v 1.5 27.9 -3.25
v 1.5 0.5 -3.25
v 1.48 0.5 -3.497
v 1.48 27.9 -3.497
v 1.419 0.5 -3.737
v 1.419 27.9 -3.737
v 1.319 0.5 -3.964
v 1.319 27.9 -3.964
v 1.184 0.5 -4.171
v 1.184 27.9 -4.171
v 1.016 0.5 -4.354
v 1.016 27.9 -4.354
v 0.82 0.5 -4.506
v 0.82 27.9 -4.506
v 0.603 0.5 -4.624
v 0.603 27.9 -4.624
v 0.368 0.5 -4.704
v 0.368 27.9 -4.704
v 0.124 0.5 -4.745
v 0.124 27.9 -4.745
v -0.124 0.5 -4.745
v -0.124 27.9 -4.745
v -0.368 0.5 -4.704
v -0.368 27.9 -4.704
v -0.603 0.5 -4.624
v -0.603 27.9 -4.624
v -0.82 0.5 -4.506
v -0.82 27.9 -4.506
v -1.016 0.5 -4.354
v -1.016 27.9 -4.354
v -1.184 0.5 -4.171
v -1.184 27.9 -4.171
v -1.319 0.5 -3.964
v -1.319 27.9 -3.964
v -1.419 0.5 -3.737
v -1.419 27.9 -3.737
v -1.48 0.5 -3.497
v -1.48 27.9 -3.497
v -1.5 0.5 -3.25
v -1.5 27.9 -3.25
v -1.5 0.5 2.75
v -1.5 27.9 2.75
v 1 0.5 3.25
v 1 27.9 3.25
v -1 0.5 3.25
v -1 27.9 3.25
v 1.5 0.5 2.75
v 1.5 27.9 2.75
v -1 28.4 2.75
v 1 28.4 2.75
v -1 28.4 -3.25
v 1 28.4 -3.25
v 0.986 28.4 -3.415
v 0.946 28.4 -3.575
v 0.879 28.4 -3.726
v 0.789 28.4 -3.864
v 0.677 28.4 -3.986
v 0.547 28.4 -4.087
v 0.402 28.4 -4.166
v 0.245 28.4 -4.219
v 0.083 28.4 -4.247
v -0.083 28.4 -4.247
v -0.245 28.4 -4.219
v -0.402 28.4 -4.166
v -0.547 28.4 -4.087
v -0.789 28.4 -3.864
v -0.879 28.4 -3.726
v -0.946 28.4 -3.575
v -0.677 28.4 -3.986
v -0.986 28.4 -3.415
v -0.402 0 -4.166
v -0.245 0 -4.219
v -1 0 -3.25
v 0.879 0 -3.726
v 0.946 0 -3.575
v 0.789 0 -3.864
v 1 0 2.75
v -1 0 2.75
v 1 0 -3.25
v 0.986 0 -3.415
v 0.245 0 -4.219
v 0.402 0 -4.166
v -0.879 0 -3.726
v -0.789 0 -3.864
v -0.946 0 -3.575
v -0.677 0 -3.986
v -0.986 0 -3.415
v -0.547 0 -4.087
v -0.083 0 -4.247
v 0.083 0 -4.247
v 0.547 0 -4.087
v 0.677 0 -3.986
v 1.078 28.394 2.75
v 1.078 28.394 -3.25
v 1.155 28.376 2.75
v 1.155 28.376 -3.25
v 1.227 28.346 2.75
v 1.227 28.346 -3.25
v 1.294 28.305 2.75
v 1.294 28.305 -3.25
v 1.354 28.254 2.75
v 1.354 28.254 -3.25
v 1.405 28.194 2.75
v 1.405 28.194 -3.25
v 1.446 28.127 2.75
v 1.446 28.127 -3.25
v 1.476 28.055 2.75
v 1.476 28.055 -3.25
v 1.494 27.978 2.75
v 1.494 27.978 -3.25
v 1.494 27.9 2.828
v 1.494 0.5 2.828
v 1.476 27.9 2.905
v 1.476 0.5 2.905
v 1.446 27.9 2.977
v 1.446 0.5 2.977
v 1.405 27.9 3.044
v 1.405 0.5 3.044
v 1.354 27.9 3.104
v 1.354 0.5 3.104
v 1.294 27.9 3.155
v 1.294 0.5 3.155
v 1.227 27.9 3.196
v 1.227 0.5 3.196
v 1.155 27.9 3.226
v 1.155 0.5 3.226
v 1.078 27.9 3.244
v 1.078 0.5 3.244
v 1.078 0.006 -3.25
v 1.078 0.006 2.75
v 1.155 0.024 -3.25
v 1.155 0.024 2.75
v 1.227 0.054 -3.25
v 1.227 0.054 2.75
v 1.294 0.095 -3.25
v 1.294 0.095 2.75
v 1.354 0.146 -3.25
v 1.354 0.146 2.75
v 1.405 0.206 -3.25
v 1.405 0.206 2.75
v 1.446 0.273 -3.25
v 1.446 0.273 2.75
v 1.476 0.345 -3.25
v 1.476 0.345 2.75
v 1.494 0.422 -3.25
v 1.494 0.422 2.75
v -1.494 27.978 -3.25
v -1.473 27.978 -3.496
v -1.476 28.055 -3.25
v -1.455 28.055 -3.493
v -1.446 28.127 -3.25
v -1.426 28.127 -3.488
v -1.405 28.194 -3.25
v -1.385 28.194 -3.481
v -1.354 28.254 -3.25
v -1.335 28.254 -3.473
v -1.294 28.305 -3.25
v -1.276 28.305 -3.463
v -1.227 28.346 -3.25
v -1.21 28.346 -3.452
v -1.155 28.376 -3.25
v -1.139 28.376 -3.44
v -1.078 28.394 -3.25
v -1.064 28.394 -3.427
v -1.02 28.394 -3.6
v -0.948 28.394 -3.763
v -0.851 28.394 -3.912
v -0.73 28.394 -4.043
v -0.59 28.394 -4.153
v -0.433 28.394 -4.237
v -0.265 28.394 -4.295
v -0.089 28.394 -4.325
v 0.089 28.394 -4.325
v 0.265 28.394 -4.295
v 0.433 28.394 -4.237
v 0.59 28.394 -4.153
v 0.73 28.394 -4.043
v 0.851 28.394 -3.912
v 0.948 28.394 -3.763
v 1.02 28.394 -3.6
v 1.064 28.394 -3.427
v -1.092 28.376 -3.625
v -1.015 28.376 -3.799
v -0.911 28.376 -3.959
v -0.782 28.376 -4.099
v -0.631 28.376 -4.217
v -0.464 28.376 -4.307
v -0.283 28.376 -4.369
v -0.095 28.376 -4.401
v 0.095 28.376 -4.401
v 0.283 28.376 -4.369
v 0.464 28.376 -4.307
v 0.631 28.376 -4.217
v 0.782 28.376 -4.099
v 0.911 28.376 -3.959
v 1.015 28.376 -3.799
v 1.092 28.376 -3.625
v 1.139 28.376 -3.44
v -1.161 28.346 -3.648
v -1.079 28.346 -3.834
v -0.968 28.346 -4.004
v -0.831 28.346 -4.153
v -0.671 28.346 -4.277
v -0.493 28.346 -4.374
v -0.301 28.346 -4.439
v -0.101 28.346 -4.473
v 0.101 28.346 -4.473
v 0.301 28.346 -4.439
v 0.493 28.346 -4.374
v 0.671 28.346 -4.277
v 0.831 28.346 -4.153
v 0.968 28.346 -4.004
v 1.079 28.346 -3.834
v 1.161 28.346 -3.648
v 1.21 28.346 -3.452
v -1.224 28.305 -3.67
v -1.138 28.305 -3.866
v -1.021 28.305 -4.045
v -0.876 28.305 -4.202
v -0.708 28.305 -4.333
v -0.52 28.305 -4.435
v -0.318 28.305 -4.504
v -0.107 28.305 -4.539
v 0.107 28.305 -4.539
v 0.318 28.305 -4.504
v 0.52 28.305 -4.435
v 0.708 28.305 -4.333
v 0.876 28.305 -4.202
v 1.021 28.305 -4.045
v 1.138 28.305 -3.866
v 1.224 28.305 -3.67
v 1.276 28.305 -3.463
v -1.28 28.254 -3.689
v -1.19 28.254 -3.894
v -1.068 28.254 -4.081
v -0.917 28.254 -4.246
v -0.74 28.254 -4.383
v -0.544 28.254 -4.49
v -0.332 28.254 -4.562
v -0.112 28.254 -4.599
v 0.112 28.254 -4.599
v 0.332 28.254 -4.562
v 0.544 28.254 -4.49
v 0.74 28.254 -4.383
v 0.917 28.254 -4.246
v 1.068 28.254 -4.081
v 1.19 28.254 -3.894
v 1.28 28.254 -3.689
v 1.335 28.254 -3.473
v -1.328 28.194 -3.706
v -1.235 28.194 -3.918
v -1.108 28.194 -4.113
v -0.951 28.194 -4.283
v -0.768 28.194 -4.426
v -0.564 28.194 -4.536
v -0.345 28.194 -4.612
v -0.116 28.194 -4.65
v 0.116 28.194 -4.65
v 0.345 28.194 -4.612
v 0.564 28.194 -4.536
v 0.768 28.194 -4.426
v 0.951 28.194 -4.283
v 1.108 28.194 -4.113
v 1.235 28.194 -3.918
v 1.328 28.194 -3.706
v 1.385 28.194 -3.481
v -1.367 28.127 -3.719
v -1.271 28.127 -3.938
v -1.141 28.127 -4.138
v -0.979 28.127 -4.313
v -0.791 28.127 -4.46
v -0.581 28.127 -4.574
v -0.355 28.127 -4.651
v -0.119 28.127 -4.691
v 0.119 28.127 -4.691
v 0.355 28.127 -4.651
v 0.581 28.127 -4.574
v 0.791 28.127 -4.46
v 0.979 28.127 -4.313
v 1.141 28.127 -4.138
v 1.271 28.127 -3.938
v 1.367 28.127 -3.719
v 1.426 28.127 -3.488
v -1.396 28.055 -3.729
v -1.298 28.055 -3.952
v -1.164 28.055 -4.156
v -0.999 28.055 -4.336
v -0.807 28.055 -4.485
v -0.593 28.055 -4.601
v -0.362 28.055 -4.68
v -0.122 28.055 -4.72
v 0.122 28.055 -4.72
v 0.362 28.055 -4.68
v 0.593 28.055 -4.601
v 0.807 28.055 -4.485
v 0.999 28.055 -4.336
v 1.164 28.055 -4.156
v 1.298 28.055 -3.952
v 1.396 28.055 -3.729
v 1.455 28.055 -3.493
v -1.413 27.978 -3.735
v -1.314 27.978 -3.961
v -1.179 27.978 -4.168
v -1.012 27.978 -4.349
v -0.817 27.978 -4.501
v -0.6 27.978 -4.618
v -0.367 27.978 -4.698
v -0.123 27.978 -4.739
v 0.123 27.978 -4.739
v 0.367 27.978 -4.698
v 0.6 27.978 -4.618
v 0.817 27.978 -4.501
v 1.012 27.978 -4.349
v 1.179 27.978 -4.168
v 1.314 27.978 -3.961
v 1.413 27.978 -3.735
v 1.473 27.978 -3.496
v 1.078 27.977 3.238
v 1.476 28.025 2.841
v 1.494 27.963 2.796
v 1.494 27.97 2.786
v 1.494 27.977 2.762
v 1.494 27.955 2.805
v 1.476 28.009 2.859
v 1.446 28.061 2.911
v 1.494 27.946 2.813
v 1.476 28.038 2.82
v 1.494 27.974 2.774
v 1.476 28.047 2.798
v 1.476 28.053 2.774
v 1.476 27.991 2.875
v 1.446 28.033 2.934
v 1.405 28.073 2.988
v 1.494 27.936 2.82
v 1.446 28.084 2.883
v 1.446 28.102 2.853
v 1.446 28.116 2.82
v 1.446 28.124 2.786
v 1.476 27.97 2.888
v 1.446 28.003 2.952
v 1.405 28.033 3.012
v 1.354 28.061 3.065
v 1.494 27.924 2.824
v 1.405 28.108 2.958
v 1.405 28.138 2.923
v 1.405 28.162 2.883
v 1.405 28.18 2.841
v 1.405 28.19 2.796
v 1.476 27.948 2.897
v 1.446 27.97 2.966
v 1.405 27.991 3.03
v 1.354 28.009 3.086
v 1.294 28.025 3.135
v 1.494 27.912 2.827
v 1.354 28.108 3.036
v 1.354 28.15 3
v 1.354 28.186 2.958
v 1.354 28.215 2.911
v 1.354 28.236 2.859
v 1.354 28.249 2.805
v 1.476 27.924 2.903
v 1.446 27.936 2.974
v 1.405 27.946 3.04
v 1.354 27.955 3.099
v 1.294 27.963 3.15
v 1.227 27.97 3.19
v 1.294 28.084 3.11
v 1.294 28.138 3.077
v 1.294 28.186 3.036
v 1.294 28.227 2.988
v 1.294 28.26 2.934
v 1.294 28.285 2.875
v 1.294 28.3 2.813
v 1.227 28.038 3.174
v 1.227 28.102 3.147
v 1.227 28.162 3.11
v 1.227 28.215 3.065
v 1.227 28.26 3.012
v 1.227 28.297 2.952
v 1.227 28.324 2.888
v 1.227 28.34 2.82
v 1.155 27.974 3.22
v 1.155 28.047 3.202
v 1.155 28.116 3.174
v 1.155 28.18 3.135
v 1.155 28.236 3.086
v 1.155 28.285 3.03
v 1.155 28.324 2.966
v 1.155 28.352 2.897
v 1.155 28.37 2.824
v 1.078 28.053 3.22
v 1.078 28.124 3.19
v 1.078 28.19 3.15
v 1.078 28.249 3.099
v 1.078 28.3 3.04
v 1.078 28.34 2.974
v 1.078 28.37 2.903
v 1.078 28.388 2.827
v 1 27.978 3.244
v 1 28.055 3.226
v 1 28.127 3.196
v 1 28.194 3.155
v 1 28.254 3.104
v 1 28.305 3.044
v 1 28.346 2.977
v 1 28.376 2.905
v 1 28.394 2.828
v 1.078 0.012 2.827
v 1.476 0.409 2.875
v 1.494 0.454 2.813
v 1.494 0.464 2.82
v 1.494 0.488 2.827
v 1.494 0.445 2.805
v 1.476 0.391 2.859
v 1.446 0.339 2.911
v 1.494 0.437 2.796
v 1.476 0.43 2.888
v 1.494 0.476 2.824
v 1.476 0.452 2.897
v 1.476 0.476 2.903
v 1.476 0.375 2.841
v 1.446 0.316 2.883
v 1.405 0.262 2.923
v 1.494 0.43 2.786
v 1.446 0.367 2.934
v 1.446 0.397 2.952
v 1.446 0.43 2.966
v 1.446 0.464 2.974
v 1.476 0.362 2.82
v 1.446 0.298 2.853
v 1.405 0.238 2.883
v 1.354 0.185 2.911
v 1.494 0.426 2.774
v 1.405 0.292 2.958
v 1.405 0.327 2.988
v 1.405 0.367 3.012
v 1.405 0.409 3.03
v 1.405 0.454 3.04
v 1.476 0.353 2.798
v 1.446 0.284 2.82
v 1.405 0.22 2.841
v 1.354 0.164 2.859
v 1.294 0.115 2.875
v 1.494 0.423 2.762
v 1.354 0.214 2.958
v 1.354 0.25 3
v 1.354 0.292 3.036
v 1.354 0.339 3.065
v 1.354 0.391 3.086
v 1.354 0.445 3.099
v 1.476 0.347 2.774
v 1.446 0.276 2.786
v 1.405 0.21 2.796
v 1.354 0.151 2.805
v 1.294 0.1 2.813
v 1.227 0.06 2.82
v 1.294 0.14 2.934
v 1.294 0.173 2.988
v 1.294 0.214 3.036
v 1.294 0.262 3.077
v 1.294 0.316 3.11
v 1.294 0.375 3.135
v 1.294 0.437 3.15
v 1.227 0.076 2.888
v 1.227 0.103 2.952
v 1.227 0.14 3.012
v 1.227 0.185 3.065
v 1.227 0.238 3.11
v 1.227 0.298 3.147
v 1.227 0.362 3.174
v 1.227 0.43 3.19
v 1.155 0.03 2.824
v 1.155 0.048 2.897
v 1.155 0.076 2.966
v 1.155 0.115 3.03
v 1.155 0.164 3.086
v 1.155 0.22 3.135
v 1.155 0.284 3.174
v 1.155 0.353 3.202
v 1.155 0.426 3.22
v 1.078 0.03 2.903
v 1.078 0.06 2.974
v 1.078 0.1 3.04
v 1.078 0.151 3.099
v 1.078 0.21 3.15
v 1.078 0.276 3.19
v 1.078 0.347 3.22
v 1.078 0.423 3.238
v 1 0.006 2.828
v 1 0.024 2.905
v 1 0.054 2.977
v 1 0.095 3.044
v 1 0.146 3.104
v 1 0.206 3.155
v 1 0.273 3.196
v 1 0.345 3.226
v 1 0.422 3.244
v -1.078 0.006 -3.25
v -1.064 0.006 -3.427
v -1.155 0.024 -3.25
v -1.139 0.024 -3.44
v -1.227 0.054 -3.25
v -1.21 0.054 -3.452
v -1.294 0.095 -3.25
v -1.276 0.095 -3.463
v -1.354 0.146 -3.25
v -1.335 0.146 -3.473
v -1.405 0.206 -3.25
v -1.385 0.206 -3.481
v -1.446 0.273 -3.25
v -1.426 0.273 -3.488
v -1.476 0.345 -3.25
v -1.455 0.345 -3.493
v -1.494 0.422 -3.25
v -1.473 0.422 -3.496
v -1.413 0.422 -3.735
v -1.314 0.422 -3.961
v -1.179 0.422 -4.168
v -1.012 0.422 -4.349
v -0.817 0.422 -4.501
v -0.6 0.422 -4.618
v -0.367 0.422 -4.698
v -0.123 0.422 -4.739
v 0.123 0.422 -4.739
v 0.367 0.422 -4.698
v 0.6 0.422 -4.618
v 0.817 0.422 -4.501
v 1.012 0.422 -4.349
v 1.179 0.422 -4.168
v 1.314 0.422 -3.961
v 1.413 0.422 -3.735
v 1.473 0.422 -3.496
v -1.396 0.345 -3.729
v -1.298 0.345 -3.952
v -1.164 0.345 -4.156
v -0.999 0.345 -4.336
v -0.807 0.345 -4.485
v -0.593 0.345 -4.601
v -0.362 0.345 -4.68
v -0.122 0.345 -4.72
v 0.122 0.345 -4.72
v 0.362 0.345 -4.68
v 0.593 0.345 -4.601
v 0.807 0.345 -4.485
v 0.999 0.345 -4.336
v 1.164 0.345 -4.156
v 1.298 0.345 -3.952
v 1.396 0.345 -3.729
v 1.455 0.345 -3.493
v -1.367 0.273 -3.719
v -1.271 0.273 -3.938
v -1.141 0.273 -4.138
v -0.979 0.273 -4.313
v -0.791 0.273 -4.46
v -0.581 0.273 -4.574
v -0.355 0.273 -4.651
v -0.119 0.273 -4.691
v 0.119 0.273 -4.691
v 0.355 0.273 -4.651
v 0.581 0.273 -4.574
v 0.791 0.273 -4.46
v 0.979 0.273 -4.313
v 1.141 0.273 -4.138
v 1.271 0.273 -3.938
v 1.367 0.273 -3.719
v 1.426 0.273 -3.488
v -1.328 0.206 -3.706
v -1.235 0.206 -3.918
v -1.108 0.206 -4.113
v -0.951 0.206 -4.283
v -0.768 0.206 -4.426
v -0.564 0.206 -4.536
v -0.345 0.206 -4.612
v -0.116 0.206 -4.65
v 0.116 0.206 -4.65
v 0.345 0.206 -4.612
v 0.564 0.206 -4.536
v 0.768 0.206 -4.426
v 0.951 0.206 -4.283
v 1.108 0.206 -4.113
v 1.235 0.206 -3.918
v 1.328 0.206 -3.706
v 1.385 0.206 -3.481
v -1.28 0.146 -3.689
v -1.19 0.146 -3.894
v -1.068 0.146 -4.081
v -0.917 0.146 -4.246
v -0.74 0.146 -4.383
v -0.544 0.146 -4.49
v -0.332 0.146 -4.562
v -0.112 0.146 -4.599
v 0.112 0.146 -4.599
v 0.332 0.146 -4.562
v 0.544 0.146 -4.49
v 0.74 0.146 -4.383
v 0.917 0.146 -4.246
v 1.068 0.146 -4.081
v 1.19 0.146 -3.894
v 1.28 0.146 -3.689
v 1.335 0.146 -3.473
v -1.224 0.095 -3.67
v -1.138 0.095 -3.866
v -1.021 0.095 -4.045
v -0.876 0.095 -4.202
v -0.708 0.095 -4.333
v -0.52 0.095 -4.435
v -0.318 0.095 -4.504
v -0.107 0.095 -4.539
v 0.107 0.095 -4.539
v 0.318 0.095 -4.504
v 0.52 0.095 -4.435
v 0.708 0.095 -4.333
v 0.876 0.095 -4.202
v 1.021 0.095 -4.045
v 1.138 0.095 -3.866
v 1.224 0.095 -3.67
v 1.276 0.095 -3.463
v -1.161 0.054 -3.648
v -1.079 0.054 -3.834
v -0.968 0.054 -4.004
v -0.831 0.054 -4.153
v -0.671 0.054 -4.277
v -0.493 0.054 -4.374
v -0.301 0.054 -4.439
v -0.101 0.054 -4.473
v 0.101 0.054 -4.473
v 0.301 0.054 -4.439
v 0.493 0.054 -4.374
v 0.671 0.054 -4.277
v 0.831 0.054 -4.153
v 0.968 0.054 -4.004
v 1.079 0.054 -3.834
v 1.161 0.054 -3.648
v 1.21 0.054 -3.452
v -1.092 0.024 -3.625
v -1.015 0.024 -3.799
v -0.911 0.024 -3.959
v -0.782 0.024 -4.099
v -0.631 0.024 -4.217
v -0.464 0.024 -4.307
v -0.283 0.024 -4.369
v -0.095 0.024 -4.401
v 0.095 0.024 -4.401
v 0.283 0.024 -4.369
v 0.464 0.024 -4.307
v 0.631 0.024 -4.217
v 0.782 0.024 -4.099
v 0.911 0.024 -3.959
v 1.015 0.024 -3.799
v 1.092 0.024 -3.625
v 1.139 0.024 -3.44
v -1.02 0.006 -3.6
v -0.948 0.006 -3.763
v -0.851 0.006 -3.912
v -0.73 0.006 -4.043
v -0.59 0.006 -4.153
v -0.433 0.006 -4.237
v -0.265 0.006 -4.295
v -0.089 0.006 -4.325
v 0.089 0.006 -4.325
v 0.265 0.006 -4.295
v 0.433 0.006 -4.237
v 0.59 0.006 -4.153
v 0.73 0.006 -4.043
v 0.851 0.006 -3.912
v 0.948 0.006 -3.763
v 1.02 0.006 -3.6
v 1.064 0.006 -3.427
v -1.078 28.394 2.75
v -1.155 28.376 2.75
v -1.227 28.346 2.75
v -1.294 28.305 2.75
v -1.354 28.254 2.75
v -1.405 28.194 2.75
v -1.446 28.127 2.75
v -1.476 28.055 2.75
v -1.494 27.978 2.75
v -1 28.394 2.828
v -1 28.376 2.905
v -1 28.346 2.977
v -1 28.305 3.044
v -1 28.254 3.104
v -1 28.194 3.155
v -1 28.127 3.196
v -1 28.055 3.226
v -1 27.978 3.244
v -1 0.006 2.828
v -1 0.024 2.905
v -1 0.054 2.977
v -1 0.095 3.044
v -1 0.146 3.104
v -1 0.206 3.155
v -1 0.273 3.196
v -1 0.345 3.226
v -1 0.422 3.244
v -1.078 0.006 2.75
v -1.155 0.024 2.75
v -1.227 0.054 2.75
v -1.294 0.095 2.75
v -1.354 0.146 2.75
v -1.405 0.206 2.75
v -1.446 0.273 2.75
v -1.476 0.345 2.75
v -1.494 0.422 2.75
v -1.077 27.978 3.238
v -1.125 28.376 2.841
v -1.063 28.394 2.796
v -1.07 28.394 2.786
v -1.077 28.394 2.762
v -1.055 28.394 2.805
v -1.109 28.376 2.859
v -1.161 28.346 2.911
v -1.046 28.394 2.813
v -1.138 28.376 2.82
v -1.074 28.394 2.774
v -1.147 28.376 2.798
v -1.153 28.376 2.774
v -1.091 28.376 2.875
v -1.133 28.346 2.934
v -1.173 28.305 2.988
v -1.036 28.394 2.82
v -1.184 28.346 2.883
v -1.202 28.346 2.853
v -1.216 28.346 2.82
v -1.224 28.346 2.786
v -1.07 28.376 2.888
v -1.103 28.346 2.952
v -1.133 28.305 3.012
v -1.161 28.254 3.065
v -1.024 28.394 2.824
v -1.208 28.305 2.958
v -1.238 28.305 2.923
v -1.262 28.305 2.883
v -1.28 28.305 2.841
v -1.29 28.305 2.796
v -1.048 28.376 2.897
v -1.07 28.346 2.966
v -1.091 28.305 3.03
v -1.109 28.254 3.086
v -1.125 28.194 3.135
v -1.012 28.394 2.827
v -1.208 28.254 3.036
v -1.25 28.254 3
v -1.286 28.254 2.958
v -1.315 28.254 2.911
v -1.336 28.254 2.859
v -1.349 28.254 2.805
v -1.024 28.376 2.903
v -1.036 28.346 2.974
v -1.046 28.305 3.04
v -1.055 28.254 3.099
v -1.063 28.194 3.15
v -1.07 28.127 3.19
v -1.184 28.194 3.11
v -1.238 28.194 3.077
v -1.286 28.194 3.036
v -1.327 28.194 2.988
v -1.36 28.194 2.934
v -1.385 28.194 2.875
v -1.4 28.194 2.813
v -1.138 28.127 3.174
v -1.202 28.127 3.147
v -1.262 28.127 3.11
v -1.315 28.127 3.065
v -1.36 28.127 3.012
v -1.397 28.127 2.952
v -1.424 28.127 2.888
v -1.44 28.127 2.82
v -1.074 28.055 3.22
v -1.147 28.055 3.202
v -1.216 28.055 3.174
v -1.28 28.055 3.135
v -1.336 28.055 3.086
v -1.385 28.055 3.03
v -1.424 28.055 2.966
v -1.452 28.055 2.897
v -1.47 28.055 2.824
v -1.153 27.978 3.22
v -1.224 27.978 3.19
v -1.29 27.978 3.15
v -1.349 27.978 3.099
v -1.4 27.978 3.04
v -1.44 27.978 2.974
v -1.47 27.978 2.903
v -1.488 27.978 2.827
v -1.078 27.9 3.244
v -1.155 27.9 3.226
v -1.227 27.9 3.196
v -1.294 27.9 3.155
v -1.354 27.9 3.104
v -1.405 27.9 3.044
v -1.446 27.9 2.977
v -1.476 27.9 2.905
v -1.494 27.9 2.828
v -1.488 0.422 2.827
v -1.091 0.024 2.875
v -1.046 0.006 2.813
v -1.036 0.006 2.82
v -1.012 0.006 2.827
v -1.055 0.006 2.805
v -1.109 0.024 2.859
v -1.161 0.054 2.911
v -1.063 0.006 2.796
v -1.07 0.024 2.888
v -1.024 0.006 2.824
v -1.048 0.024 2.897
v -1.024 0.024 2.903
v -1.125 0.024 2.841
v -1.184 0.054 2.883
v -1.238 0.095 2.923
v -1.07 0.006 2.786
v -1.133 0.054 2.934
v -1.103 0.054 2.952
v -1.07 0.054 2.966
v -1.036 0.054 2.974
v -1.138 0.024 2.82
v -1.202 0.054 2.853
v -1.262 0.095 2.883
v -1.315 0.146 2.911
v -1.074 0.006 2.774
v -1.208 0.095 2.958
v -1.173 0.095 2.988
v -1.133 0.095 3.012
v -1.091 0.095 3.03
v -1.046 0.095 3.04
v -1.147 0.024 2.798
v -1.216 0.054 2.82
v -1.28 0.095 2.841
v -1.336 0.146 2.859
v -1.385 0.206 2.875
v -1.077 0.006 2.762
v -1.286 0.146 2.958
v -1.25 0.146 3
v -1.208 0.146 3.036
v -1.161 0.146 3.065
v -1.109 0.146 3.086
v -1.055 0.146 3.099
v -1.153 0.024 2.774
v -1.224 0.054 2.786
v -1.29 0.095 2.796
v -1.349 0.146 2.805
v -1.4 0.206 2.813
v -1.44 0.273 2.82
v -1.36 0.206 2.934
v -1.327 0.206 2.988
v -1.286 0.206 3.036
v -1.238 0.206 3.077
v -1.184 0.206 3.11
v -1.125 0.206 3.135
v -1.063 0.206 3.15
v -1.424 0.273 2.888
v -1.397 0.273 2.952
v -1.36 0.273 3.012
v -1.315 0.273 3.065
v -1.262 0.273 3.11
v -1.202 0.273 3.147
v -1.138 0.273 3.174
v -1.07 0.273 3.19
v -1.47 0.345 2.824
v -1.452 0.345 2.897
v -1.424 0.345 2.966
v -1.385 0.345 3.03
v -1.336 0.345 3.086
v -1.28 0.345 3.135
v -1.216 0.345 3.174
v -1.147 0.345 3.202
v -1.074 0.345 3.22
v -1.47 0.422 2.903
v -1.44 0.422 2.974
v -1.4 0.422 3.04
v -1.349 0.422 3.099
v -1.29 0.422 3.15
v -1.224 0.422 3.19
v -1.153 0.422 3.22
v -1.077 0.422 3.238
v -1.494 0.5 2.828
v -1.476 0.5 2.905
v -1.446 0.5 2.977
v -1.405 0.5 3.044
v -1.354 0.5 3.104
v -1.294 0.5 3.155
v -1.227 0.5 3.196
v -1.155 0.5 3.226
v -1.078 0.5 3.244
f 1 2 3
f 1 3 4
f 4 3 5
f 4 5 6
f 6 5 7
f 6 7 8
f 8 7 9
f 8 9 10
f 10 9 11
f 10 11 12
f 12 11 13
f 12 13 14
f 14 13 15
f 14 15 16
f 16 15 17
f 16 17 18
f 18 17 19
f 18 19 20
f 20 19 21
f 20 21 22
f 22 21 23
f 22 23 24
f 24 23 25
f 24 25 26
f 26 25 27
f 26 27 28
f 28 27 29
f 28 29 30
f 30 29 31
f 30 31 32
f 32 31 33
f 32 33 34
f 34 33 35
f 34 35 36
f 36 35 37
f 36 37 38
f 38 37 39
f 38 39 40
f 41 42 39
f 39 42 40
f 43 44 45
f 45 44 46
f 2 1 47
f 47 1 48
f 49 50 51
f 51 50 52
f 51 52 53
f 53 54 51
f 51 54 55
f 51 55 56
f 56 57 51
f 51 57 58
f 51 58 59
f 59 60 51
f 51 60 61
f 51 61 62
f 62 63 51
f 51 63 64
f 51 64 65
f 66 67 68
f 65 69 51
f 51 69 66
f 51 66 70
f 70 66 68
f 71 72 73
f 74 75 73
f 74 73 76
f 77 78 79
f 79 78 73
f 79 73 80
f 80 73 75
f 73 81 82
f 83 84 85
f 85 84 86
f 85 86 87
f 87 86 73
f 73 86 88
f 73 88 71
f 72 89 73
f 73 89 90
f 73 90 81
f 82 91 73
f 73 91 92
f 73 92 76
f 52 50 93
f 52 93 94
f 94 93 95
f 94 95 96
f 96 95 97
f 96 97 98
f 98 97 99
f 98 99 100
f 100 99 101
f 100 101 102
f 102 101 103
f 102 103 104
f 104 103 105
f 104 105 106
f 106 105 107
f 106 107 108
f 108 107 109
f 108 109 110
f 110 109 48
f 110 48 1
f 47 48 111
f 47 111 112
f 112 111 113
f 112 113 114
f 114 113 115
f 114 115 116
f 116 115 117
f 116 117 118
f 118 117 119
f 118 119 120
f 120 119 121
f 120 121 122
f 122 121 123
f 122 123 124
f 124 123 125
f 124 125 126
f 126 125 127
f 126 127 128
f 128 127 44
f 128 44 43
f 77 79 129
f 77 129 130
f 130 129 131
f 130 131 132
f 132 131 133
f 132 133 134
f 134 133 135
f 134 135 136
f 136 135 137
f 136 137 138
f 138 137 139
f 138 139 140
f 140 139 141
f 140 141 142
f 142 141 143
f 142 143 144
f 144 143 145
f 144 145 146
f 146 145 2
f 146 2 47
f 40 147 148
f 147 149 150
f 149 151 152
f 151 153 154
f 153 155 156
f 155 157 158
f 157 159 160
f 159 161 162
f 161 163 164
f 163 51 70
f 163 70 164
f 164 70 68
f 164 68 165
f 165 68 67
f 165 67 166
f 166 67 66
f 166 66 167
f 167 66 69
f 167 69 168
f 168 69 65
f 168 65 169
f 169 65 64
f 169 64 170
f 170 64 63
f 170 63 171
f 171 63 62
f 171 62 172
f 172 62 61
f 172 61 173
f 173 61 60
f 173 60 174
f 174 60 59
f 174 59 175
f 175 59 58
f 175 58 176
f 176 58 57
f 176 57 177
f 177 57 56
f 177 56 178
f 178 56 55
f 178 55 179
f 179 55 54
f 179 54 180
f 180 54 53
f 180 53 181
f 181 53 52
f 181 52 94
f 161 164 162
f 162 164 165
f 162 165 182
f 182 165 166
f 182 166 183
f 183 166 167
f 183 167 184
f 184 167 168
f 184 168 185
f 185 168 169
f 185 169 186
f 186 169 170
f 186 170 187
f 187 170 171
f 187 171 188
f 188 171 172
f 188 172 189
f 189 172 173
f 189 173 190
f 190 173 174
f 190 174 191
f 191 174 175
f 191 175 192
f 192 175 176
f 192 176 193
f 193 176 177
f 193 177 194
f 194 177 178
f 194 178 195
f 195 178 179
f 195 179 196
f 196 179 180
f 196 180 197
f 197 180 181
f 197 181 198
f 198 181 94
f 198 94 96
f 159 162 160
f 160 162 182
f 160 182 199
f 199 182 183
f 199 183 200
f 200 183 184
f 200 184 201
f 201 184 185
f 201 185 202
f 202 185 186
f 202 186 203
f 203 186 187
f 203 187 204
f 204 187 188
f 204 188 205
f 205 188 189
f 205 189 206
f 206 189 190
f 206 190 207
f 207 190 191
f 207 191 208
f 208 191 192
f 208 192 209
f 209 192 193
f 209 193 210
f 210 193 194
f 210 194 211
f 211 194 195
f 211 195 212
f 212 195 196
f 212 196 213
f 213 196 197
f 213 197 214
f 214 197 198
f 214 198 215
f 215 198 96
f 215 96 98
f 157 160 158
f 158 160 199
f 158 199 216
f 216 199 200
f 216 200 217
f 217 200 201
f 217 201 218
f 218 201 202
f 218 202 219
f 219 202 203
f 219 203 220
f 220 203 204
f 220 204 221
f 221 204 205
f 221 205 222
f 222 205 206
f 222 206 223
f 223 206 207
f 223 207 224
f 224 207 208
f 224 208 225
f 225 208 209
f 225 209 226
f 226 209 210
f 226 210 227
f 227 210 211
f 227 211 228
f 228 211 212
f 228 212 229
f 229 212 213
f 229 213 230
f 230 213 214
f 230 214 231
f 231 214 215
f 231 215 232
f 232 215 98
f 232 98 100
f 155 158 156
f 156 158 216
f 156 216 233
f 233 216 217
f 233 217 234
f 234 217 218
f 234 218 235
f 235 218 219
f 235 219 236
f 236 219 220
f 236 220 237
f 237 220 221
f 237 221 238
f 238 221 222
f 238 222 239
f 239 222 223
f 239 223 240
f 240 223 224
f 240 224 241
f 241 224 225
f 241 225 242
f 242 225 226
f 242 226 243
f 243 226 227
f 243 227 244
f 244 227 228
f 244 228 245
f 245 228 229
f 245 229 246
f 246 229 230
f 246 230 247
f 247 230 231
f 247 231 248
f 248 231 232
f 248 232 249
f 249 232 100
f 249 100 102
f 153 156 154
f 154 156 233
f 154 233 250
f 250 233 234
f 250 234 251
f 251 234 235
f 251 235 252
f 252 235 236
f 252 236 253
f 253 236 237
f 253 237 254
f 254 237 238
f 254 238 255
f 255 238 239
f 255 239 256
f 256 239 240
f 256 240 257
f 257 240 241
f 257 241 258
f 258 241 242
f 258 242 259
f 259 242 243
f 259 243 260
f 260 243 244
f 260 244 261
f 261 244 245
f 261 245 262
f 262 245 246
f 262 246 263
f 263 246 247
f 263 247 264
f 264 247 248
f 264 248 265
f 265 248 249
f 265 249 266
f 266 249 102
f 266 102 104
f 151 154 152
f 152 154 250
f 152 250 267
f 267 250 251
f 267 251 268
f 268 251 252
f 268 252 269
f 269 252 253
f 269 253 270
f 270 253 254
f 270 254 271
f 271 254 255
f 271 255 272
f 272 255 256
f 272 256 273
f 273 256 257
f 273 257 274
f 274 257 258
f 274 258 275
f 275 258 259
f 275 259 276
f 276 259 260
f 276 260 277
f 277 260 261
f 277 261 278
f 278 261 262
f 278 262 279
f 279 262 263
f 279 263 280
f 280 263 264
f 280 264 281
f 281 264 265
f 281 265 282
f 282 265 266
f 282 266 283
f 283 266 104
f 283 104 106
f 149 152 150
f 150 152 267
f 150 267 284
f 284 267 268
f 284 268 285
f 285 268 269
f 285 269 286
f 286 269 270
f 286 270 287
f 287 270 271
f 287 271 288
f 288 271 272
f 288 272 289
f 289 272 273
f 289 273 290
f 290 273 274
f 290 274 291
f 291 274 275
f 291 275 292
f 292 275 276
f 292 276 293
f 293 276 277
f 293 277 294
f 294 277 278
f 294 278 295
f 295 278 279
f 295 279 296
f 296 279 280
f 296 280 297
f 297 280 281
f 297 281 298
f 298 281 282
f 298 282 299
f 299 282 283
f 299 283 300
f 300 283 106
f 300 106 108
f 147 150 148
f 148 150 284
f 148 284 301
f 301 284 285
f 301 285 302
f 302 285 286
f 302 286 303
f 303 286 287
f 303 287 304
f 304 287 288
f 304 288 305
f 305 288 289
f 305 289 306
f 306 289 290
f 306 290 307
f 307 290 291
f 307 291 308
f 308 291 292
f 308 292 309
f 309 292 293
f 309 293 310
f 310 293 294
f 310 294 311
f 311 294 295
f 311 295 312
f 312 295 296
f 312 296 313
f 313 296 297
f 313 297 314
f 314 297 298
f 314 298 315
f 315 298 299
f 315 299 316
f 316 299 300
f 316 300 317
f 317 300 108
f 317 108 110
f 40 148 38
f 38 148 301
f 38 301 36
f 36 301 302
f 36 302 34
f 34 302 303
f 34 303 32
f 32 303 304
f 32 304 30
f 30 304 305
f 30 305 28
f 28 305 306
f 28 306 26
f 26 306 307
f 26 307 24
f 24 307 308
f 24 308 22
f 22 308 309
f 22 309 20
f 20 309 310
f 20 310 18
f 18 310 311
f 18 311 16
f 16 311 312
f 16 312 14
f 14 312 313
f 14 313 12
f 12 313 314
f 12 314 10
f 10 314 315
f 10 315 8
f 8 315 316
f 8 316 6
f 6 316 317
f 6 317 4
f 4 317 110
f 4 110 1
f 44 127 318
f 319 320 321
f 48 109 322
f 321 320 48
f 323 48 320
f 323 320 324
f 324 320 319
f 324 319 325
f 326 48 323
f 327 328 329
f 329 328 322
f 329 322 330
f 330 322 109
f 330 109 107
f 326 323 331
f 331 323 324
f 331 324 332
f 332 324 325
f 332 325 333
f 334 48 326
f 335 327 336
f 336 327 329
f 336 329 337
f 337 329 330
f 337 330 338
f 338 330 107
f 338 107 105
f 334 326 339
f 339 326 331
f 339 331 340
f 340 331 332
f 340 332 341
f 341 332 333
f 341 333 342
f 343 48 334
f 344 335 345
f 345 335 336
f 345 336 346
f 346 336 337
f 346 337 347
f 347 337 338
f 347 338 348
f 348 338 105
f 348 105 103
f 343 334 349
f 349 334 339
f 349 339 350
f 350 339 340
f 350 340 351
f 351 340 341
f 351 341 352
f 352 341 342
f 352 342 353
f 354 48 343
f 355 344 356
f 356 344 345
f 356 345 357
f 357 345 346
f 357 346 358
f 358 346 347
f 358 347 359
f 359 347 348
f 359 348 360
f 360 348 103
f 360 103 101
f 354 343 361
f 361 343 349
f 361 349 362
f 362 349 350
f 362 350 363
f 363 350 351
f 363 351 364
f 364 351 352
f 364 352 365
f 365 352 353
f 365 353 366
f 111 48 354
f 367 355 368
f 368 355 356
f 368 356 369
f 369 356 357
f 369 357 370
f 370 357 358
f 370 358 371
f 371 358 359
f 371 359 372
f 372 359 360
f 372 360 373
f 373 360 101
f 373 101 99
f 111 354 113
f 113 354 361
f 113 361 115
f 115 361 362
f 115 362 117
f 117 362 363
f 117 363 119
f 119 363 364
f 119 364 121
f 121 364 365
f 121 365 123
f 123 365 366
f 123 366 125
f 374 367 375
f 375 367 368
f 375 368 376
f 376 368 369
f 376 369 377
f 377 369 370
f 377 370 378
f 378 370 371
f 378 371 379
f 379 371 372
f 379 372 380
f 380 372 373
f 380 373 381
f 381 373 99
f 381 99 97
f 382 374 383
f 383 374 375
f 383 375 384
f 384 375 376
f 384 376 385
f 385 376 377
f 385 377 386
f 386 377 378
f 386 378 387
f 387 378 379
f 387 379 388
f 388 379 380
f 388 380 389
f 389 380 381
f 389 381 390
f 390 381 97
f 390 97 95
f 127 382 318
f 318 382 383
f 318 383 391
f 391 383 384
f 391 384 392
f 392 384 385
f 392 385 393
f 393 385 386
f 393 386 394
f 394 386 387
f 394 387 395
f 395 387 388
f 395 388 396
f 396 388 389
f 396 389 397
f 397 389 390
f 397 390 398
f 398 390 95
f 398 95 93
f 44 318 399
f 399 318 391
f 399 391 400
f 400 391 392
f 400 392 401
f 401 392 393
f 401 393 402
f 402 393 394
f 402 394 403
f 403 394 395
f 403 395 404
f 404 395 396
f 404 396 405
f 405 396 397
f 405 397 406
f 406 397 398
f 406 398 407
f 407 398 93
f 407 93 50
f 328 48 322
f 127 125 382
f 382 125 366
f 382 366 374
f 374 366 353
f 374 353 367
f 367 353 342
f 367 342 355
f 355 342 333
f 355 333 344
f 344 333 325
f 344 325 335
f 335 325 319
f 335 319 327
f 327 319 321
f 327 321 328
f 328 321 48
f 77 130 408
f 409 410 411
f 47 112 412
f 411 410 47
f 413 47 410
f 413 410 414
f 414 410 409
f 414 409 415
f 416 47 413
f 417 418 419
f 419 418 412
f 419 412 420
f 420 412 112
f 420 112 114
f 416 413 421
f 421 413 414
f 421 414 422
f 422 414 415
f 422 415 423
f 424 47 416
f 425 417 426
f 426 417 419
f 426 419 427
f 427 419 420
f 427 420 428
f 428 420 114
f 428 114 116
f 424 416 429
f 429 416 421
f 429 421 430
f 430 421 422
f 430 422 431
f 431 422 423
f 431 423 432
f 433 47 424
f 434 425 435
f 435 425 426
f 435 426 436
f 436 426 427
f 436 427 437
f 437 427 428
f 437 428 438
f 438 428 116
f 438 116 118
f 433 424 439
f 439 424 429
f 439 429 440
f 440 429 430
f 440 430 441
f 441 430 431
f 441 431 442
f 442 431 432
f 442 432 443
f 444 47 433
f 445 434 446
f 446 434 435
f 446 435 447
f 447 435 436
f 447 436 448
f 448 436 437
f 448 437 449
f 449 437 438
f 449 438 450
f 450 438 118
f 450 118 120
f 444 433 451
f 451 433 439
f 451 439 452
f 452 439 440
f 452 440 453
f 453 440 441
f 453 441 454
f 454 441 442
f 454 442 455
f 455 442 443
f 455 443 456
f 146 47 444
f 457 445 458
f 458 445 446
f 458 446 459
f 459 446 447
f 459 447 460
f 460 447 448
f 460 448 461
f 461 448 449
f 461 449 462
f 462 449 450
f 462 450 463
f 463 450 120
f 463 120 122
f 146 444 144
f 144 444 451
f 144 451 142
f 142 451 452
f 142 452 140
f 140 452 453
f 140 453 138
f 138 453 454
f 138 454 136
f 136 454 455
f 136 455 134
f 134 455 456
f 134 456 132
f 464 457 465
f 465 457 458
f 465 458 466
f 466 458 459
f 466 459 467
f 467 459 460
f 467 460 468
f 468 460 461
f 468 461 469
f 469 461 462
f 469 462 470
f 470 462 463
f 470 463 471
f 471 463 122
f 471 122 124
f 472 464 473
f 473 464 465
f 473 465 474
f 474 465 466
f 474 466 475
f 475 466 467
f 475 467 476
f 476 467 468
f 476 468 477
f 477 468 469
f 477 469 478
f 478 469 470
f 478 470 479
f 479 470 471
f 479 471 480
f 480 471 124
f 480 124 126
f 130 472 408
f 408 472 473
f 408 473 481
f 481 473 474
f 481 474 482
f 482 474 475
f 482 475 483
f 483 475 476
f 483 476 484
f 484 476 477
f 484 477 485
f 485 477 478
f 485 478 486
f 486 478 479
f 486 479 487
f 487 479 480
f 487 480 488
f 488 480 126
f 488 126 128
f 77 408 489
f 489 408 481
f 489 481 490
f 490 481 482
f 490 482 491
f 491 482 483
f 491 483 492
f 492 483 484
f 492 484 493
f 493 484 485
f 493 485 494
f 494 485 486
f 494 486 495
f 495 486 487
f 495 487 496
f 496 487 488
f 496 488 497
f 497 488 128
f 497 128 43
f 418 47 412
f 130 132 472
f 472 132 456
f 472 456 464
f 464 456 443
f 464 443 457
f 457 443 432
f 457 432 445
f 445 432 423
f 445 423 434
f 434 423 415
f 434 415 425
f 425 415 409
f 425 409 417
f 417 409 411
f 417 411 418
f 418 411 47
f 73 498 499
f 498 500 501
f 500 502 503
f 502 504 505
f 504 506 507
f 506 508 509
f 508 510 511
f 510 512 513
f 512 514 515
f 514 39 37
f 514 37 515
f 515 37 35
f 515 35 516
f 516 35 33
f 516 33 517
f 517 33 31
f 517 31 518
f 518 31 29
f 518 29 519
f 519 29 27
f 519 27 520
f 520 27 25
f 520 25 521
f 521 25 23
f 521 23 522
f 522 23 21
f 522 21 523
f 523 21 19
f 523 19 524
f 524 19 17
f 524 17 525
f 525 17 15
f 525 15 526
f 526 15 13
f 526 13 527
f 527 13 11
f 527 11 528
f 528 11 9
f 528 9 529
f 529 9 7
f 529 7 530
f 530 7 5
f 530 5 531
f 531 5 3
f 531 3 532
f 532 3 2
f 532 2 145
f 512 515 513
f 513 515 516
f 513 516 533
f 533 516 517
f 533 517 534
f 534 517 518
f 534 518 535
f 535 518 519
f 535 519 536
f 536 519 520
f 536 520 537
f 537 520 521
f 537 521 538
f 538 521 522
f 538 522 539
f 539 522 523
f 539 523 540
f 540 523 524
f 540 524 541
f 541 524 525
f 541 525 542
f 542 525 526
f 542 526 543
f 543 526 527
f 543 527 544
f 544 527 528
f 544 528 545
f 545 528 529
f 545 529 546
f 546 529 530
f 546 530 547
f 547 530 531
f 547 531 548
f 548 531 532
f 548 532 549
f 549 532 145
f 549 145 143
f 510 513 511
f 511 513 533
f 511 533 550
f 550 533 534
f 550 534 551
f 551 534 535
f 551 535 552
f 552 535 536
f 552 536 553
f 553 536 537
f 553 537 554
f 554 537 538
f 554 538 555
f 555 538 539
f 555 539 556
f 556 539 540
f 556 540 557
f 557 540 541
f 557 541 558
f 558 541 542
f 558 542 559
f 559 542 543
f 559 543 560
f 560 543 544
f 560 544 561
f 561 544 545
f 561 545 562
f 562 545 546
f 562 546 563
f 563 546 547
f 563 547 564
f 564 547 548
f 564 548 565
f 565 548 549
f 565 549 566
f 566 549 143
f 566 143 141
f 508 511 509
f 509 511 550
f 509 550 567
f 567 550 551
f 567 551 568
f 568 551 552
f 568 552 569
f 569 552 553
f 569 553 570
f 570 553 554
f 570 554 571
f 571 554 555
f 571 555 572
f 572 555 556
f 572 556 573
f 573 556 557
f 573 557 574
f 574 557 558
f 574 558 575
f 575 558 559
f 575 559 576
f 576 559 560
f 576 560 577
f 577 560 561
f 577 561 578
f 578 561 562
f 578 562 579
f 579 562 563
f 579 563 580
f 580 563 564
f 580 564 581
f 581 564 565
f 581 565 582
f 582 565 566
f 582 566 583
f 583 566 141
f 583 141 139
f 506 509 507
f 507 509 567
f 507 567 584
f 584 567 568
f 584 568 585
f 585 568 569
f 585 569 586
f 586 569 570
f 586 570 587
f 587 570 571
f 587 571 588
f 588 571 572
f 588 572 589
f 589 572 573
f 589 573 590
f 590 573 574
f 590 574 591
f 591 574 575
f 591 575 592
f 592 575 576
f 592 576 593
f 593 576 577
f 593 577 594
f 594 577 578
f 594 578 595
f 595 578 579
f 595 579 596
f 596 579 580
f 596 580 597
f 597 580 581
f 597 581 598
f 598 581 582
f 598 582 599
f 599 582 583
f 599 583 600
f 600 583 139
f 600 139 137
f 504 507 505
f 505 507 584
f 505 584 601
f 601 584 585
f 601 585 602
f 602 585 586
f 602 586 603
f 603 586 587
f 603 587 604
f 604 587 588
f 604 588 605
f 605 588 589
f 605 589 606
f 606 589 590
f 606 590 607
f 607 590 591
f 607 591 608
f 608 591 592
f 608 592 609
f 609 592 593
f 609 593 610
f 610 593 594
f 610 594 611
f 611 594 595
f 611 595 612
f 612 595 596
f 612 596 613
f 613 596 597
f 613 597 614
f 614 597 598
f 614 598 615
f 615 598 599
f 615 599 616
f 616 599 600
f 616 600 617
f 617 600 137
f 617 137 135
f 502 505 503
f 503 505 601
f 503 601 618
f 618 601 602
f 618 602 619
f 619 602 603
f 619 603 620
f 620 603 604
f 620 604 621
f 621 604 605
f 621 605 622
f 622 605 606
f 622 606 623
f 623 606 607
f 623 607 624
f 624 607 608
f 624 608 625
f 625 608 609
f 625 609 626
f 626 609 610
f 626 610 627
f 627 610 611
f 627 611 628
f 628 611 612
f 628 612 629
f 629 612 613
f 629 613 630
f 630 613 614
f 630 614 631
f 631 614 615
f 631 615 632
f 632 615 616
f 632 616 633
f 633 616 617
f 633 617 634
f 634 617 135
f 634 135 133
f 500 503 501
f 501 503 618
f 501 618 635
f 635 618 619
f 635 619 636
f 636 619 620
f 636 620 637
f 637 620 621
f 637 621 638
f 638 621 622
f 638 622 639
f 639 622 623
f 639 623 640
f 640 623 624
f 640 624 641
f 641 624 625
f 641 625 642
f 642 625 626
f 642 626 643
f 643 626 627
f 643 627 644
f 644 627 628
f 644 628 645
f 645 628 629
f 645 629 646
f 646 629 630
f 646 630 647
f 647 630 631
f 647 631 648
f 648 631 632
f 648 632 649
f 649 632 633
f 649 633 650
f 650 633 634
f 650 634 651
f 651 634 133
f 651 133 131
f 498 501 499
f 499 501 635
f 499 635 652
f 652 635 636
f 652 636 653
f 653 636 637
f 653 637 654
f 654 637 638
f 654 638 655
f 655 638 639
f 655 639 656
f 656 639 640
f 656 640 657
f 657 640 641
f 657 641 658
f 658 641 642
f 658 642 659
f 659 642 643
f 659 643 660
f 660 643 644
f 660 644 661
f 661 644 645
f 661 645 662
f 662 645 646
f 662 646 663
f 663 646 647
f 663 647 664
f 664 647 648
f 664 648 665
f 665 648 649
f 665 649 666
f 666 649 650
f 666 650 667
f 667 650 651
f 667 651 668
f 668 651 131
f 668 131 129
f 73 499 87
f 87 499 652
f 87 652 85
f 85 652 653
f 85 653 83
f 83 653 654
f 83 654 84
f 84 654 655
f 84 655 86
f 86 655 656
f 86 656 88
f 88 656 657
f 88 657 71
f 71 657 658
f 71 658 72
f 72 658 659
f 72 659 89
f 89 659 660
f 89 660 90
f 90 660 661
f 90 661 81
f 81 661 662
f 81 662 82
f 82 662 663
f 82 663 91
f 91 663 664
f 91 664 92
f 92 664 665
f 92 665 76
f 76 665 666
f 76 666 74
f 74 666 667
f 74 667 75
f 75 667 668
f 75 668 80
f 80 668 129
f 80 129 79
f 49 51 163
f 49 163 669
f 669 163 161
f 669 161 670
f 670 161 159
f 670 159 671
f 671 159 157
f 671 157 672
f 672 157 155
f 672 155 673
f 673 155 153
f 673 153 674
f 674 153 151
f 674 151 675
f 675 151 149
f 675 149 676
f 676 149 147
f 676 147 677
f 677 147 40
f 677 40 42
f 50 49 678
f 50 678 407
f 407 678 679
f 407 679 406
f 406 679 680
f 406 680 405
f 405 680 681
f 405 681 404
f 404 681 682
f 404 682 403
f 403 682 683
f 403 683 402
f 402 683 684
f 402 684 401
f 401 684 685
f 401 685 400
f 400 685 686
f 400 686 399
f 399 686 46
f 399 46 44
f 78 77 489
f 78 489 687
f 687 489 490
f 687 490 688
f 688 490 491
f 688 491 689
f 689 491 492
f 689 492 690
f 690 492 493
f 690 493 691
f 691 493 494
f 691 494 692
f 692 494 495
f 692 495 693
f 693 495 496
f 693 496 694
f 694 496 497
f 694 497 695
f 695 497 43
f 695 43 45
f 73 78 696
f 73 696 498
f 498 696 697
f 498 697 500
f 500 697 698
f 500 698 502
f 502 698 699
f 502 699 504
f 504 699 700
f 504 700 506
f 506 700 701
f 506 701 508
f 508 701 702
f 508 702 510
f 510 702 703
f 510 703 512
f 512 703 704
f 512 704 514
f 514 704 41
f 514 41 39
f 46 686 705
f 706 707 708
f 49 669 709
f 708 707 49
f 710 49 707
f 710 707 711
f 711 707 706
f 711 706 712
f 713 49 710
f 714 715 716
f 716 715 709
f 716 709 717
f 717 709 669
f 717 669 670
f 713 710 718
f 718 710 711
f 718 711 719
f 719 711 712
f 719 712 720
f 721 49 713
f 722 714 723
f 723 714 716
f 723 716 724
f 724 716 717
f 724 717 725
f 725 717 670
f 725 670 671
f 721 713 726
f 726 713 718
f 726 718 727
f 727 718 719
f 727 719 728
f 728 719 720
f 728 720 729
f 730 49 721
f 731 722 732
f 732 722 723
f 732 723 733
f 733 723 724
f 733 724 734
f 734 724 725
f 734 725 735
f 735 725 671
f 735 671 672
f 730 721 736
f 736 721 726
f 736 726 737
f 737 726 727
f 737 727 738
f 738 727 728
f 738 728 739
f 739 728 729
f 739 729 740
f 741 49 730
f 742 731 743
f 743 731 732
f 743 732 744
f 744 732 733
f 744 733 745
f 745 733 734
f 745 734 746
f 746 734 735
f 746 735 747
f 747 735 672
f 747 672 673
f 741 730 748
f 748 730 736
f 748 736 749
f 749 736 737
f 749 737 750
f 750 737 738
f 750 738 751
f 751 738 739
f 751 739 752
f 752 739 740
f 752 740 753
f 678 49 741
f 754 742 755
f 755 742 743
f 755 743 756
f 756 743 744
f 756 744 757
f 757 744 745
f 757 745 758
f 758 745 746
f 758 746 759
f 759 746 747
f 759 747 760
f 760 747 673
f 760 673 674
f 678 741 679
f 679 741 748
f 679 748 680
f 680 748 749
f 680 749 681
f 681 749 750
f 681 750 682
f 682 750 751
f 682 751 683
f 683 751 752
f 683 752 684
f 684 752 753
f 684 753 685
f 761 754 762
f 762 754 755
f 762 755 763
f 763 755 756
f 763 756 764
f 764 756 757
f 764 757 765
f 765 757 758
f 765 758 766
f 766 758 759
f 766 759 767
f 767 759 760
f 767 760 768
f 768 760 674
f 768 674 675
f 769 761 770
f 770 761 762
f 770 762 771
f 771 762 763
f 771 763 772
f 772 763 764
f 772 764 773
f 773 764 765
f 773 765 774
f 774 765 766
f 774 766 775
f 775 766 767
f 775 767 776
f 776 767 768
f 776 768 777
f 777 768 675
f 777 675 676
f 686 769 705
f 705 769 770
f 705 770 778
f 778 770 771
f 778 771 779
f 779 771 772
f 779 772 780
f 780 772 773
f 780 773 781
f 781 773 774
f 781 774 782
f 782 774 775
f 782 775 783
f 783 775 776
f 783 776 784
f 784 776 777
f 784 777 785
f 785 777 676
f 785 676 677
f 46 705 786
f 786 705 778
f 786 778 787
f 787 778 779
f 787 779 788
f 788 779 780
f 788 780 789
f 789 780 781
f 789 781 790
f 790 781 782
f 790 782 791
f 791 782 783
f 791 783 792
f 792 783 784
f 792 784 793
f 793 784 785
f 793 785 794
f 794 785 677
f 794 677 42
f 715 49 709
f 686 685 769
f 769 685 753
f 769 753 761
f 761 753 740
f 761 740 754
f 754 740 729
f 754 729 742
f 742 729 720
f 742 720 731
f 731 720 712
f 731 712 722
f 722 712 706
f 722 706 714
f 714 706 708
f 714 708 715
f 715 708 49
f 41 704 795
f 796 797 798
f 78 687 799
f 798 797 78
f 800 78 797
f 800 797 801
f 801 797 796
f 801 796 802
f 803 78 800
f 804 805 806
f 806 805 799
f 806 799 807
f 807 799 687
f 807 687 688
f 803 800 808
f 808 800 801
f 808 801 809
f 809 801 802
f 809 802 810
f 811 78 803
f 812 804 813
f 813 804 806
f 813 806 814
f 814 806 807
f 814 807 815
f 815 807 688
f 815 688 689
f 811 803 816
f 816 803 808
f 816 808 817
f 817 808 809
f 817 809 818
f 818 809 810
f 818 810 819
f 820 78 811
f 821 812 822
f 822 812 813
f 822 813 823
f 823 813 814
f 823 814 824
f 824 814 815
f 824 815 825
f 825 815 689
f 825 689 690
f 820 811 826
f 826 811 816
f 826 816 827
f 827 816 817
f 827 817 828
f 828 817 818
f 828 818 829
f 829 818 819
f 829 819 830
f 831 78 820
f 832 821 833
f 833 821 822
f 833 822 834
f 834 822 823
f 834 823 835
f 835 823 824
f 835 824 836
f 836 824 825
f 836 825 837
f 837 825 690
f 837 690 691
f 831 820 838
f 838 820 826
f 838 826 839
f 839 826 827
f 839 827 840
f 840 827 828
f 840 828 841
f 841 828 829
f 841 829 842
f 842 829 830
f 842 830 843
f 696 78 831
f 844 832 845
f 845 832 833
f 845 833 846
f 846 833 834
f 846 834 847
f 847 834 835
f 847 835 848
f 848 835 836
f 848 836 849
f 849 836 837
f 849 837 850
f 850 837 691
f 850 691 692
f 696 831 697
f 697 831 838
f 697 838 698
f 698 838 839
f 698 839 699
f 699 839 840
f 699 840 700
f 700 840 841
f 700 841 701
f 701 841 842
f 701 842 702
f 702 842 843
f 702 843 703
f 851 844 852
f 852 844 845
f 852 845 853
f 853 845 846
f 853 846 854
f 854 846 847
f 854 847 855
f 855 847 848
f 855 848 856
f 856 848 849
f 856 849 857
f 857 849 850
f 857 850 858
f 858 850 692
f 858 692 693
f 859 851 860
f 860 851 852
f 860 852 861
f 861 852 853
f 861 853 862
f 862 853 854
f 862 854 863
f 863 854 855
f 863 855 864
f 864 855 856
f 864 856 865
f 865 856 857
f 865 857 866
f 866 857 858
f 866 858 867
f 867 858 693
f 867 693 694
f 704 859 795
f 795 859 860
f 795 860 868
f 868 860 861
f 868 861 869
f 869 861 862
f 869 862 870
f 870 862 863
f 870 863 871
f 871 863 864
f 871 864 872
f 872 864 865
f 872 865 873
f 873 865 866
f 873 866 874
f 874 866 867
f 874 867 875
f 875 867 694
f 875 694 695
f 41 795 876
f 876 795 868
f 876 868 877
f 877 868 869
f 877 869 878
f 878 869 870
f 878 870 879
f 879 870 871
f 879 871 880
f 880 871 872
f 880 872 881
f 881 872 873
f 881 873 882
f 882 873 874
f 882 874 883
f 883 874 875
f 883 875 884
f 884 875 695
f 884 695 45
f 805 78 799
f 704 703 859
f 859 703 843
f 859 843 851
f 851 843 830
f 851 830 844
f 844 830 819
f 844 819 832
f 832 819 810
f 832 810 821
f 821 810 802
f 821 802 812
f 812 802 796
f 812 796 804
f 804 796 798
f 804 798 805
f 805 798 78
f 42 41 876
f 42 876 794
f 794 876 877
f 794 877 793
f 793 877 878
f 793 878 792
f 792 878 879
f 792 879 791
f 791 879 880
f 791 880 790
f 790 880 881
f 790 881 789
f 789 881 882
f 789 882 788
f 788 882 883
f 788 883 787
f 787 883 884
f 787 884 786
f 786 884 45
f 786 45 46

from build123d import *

# Parameters (mm, degrees)
EXTRUDE_1_DEPTH = 28.4
FILLET_1_R      = 0.5


with BuildPart() as part:
    # 草图1 → 凸台-拉伸1 (new body)
    with BuildSketch(Plane(origin=(0, 0, 0), x_dir=(1, 0, 0), z_dir=(0, 1, 0))):
        with BuildLine():
            ThreePointArc((1.5, 3.25), (0, 4.75), (-1.5, 3.25))
            Line((-1.5, 3.25), (1.5, 3.25))
        make_face()
        with BuildLine():
            Line((1.5, 3.25), (-1.5, 3.25))
            ThreePointArc((-1.5, 3.25), (0, 1.75), (1.5, 3.25))
        make_face()
        with BuildLine():
            ThreePointArc((1.5, 3.25), (0, 1.75), (-1.5, 3.25))
            Line((-1.5, 3.25), (-1.5, -3.25))
            Line((-1.5, -3.25), (1.5, -3.25))
            Line((1.5, -3.25), (1.5, 3.25))
        make_face()
    extrude(amount=EXTRUDE_1_DEPTH)

    # 圆角1
    fillet_1_edges = [part.edges().sort_by_distance(p)[0] for p in [
        (-1.5, 28.4, 0),
        (0, 28.4, 3.25),
        (1.5, 28.4, 0),
        (0, 28.4, -4.75),
        (1.5, 0, 0),
        (0, 0, 3.25),
        (-1.5, 0, 0),
        (0, 0, -4.75),
        (1.5, 14.2, 3.25),
        (-1.5, 14.2, 3.25),
    ]]
    fillet(fillet_1_edges, radius=FILLET_1_R)


solid = part.part
